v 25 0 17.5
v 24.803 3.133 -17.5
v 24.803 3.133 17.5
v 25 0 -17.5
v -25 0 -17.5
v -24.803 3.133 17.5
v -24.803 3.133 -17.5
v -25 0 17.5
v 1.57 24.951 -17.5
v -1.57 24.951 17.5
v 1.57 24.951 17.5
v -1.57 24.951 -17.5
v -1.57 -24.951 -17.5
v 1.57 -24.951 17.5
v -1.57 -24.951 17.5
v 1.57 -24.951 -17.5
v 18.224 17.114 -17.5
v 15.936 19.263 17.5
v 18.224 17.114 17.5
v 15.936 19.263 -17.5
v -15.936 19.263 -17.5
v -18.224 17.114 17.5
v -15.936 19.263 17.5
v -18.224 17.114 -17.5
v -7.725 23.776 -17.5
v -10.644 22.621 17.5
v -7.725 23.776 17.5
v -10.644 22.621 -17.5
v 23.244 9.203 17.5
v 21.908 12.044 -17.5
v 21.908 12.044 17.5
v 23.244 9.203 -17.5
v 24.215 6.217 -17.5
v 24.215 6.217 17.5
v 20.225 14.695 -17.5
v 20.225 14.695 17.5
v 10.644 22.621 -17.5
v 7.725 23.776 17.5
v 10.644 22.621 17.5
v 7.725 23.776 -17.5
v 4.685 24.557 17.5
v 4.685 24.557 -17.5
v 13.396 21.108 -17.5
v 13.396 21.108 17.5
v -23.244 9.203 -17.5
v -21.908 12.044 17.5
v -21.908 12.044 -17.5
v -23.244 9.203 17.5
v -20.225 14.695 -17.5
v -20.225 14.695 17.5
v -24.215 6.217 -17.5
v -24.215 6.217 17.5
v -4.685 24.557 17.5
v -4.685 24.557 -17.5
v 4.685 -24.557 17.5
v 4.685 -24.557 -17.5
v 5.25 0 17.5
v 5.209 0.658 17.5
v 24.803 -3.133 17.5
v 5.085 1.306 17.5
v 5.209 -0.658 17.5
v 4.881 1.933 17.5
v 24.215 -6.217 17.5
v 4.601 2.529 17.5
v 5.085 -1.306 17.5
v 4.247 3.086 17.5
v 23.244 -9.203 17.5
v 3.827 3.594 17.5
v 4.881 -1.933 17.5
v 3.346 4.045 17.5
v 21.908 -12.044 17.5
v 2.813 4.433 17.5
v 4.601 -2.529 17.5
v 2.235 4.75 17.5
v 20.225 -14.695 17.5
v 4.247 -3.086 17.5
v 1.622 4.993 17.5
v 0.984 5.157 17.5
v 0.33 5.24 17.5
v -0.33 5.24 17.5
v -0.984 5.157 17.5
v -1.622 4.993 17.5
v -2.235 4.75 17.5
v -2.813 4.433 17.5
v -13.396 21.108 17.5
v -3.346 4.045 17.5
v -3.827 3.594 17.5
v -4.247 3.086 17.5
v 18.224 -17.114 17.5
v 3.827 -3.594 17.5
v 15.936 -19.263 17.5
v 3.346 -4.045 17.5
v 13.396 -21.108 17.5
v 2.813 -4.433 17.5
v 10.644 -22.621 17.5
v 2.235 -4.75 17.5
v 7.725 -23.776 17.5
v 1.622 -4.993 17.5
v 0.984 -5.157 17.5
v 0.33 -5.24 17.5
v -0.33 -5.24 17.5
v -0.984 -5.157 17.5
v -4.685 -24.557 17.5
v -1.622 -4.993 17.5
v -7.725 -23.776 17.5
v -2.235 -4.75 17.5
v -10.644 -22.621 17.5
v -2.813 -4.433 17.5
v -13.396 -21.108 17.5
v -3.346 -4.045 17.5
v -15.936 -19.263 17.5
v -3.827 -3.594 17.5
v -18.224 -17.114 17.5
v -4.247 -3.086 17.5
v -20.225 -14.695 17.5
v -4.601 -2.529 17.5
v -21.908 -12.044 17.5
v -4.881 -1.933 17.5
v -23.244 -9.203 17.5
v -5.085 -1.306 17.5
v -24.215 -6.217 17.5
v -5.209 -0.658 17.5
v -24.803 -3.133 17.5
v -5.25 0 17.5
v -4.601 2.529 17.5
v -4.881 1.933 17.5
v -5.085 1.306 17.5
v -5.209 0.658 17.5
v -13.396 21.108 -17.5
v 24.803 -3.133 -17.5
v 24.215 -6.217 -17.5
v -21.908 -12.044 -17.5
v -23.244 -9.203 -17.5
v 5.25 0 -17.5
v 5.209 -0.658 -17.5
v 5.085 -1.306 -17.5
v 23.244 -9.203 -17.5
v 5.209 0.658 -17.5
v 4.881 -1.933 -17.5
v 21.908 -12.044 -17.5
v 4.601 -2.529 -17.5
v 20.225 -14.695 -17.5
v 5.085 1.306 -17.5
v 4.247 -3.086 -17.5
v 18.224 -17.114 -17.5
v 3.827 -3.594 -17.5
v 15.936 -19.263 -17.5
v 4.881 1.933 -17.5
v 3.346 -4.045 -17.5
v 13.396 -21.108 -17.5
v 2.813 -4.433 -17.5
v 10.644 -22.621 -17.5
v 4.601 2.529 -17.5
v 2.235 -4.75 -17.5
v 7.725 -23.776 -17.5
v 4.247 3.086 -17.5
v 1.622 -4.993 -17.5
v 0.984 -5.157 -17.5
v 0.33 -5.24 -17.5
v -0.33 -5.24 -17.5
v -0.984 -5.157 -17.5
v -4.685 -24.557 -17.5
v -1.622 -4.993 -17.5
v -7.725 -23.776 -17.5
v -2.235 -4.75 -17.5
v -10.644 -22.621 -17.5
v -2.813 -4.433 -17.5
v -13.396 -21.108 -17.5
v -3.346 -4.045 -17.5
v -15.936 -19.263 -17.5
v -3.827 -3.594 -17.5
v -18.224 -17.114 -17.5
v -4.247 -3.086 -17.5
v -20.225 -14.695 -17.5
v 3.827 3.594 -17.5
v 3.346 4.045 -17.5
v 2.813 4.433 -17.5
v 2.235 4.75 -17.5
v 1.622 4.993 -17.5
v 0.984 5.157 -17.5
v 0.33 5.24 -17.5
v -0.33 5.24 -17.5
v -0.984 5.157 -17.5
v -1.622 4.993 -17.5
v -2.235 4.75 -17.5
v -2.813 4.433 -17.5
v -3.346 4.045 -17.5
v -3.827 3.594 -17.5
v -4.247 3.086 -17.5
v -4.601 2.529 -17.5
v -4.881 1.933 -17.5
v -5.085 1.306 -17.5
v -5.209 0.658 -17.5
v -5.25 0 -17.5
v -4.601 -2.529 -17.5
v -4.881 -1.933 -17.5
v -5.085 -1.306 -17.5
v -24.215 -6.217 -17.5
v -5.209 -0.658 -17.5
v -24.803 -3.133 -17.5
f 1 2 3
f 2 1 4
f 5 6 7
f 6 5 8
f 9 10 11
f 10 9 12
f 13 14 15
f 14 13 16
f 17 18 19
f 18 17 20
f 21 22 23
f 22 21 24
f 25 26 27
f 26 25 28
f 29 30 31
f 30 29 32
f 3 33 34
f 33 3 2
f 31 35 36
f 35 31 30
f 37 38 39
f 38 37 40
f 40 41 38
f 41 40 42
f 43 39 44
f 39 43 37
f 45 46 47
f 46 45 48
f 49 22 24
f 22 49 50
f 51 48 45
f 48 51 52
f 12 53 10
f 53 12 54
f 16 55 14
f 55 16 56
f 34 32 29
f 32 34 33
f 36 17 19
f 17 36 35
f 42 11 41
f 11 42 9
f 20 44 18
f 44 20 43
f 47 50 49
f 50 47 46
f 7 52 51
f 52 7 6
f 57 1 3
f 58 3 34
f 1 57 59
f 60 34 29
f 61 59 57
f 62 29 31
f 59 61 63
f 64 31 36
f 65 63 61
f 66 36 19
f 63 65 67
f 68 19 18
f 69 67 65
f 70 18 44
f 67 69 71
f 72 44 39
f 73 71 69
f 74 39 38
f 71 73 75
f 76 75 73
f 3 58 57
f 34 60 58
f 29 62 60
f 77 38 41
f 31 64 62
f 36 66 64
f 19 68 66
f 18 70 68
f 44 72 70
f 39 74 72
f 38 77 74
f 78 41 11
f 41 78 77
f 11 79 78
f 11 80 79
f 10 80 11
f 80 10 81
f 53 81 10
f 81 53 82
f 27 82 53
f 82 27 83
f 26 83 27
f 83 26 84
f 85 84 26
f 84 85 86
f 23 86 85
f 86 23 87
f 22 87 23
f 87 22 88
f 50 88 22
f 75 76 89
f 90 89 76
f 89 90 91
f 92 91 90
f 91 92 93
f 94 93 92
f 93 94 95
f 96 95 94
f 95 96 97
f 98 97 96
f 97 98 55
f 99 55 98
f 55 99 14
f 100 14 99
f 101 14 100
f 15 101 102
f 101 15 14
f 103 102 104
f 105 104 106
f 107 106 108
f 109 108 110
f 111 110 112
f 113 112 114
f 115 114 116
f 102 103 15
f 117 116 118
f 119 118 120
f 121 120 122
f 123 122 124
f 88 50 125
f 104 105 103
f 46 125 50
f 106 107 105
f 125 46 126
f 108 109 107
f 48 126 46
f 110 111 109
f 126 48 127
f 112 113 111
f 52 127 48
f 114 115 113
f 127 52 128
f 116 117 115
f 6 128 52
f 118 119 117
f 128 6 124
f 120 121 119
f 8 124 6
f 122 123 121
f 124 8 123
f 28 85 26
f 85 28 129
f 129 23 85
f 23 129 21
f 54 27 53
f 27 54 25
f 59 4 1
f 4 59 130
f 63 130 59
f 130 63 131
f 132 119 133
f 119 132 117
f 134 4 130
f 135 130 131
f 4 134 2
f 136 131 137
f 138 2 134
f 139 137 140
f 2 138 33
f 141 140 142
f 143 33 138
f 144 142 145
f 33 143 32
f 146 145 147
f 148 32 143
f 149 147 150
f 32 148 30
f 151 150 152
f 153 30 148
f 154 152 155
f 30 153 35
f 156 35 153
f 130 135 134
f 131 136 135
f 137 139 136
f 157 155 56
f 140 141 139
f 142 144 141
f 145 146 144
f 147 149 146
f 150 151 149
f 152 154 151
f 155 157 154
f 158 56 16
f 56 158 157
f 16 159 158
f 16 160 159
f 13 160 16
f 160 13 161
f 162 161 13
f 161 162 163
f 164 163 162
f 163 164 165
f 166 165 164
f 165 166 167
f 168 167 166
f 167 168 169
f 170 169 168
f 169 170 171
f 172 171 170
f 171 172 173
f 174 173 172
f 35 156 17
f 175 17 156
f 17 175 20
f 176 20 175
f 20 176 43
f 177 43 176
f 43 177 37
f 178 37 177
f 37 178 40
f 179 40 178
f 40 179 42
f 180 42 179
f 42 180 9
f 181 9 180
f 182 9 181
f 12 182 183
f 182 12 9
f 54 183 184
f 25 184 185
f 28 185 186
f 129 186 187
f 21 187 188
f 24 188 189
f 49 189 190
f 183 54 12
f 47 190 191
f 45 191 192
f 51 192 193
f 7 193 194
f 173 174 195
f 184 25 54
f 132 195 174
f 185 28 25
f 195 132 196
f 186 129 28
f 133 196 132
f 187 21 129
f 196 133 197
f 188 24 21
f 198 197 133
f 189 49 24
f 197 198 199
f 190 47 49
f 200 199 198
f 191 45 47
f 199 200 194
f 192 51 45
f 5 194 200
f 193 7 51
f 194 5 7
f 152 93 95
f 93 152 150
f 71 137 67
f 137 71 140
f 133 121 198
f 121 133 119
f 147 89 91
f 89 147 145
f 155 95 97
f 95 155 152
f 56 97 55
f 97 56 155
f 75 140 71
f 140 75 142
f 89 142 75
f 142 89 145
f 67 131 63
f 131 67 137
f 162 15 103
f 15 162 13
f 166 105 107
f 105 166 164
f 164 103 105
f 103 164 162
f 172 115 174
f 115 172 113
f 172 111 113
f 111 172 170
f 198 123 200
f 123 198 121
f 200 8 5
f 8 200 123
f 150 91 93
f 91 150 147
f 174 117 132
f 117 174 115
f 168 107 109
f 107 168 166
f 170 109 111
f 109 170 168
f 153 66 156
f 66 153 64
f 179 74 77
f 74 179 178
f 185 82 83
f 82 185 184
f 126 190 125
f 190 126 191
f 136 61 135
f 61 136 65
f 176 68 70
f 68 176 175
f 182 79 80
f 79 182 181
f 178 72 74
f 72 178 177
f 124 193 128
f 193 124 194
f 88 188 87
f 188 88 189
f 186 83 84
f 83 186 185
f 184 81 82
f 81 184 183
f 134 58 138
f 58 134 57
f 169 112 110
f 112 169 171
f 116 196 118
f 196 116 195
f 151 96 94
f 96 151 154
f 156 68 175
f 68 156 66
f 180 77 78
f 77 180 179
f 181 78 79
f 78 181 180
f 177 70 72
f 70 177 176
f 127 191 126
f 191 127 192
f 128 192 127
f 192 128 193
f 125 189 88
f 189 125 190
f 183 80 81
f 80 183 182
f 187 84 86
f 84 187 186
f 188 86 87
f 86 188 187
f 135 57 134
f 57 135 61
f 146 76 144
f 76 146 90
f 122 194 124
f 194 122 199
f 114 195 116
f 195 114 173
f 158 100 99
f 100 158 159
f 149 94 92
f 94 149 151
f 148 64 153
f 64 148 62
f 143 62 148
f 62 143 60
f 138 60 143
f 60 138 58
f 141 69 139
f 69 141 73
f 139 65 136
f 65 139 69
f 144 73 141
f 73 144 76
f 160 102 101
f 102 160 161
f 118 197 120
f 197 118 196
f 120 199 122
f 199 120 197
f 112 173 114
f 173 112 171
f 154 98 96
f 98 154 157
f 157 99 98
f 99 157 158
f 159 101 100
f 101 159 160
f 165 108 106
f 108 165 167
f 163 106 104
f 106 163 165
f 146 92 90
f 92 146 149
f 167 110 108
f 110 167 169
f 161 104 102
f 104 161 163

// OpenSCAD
$fn = 50;


difference() {
	union() {
		translate(v = [0, 0, -17.5000000000]) {
			cylinder(h = 35, r = 25.0000000000);
		}
	}
	union() {
		translate(v = [0, 0, -100.0000000000]) {
			cylinder(h = 200, r = 5.2500000000);
		}
	}
}
